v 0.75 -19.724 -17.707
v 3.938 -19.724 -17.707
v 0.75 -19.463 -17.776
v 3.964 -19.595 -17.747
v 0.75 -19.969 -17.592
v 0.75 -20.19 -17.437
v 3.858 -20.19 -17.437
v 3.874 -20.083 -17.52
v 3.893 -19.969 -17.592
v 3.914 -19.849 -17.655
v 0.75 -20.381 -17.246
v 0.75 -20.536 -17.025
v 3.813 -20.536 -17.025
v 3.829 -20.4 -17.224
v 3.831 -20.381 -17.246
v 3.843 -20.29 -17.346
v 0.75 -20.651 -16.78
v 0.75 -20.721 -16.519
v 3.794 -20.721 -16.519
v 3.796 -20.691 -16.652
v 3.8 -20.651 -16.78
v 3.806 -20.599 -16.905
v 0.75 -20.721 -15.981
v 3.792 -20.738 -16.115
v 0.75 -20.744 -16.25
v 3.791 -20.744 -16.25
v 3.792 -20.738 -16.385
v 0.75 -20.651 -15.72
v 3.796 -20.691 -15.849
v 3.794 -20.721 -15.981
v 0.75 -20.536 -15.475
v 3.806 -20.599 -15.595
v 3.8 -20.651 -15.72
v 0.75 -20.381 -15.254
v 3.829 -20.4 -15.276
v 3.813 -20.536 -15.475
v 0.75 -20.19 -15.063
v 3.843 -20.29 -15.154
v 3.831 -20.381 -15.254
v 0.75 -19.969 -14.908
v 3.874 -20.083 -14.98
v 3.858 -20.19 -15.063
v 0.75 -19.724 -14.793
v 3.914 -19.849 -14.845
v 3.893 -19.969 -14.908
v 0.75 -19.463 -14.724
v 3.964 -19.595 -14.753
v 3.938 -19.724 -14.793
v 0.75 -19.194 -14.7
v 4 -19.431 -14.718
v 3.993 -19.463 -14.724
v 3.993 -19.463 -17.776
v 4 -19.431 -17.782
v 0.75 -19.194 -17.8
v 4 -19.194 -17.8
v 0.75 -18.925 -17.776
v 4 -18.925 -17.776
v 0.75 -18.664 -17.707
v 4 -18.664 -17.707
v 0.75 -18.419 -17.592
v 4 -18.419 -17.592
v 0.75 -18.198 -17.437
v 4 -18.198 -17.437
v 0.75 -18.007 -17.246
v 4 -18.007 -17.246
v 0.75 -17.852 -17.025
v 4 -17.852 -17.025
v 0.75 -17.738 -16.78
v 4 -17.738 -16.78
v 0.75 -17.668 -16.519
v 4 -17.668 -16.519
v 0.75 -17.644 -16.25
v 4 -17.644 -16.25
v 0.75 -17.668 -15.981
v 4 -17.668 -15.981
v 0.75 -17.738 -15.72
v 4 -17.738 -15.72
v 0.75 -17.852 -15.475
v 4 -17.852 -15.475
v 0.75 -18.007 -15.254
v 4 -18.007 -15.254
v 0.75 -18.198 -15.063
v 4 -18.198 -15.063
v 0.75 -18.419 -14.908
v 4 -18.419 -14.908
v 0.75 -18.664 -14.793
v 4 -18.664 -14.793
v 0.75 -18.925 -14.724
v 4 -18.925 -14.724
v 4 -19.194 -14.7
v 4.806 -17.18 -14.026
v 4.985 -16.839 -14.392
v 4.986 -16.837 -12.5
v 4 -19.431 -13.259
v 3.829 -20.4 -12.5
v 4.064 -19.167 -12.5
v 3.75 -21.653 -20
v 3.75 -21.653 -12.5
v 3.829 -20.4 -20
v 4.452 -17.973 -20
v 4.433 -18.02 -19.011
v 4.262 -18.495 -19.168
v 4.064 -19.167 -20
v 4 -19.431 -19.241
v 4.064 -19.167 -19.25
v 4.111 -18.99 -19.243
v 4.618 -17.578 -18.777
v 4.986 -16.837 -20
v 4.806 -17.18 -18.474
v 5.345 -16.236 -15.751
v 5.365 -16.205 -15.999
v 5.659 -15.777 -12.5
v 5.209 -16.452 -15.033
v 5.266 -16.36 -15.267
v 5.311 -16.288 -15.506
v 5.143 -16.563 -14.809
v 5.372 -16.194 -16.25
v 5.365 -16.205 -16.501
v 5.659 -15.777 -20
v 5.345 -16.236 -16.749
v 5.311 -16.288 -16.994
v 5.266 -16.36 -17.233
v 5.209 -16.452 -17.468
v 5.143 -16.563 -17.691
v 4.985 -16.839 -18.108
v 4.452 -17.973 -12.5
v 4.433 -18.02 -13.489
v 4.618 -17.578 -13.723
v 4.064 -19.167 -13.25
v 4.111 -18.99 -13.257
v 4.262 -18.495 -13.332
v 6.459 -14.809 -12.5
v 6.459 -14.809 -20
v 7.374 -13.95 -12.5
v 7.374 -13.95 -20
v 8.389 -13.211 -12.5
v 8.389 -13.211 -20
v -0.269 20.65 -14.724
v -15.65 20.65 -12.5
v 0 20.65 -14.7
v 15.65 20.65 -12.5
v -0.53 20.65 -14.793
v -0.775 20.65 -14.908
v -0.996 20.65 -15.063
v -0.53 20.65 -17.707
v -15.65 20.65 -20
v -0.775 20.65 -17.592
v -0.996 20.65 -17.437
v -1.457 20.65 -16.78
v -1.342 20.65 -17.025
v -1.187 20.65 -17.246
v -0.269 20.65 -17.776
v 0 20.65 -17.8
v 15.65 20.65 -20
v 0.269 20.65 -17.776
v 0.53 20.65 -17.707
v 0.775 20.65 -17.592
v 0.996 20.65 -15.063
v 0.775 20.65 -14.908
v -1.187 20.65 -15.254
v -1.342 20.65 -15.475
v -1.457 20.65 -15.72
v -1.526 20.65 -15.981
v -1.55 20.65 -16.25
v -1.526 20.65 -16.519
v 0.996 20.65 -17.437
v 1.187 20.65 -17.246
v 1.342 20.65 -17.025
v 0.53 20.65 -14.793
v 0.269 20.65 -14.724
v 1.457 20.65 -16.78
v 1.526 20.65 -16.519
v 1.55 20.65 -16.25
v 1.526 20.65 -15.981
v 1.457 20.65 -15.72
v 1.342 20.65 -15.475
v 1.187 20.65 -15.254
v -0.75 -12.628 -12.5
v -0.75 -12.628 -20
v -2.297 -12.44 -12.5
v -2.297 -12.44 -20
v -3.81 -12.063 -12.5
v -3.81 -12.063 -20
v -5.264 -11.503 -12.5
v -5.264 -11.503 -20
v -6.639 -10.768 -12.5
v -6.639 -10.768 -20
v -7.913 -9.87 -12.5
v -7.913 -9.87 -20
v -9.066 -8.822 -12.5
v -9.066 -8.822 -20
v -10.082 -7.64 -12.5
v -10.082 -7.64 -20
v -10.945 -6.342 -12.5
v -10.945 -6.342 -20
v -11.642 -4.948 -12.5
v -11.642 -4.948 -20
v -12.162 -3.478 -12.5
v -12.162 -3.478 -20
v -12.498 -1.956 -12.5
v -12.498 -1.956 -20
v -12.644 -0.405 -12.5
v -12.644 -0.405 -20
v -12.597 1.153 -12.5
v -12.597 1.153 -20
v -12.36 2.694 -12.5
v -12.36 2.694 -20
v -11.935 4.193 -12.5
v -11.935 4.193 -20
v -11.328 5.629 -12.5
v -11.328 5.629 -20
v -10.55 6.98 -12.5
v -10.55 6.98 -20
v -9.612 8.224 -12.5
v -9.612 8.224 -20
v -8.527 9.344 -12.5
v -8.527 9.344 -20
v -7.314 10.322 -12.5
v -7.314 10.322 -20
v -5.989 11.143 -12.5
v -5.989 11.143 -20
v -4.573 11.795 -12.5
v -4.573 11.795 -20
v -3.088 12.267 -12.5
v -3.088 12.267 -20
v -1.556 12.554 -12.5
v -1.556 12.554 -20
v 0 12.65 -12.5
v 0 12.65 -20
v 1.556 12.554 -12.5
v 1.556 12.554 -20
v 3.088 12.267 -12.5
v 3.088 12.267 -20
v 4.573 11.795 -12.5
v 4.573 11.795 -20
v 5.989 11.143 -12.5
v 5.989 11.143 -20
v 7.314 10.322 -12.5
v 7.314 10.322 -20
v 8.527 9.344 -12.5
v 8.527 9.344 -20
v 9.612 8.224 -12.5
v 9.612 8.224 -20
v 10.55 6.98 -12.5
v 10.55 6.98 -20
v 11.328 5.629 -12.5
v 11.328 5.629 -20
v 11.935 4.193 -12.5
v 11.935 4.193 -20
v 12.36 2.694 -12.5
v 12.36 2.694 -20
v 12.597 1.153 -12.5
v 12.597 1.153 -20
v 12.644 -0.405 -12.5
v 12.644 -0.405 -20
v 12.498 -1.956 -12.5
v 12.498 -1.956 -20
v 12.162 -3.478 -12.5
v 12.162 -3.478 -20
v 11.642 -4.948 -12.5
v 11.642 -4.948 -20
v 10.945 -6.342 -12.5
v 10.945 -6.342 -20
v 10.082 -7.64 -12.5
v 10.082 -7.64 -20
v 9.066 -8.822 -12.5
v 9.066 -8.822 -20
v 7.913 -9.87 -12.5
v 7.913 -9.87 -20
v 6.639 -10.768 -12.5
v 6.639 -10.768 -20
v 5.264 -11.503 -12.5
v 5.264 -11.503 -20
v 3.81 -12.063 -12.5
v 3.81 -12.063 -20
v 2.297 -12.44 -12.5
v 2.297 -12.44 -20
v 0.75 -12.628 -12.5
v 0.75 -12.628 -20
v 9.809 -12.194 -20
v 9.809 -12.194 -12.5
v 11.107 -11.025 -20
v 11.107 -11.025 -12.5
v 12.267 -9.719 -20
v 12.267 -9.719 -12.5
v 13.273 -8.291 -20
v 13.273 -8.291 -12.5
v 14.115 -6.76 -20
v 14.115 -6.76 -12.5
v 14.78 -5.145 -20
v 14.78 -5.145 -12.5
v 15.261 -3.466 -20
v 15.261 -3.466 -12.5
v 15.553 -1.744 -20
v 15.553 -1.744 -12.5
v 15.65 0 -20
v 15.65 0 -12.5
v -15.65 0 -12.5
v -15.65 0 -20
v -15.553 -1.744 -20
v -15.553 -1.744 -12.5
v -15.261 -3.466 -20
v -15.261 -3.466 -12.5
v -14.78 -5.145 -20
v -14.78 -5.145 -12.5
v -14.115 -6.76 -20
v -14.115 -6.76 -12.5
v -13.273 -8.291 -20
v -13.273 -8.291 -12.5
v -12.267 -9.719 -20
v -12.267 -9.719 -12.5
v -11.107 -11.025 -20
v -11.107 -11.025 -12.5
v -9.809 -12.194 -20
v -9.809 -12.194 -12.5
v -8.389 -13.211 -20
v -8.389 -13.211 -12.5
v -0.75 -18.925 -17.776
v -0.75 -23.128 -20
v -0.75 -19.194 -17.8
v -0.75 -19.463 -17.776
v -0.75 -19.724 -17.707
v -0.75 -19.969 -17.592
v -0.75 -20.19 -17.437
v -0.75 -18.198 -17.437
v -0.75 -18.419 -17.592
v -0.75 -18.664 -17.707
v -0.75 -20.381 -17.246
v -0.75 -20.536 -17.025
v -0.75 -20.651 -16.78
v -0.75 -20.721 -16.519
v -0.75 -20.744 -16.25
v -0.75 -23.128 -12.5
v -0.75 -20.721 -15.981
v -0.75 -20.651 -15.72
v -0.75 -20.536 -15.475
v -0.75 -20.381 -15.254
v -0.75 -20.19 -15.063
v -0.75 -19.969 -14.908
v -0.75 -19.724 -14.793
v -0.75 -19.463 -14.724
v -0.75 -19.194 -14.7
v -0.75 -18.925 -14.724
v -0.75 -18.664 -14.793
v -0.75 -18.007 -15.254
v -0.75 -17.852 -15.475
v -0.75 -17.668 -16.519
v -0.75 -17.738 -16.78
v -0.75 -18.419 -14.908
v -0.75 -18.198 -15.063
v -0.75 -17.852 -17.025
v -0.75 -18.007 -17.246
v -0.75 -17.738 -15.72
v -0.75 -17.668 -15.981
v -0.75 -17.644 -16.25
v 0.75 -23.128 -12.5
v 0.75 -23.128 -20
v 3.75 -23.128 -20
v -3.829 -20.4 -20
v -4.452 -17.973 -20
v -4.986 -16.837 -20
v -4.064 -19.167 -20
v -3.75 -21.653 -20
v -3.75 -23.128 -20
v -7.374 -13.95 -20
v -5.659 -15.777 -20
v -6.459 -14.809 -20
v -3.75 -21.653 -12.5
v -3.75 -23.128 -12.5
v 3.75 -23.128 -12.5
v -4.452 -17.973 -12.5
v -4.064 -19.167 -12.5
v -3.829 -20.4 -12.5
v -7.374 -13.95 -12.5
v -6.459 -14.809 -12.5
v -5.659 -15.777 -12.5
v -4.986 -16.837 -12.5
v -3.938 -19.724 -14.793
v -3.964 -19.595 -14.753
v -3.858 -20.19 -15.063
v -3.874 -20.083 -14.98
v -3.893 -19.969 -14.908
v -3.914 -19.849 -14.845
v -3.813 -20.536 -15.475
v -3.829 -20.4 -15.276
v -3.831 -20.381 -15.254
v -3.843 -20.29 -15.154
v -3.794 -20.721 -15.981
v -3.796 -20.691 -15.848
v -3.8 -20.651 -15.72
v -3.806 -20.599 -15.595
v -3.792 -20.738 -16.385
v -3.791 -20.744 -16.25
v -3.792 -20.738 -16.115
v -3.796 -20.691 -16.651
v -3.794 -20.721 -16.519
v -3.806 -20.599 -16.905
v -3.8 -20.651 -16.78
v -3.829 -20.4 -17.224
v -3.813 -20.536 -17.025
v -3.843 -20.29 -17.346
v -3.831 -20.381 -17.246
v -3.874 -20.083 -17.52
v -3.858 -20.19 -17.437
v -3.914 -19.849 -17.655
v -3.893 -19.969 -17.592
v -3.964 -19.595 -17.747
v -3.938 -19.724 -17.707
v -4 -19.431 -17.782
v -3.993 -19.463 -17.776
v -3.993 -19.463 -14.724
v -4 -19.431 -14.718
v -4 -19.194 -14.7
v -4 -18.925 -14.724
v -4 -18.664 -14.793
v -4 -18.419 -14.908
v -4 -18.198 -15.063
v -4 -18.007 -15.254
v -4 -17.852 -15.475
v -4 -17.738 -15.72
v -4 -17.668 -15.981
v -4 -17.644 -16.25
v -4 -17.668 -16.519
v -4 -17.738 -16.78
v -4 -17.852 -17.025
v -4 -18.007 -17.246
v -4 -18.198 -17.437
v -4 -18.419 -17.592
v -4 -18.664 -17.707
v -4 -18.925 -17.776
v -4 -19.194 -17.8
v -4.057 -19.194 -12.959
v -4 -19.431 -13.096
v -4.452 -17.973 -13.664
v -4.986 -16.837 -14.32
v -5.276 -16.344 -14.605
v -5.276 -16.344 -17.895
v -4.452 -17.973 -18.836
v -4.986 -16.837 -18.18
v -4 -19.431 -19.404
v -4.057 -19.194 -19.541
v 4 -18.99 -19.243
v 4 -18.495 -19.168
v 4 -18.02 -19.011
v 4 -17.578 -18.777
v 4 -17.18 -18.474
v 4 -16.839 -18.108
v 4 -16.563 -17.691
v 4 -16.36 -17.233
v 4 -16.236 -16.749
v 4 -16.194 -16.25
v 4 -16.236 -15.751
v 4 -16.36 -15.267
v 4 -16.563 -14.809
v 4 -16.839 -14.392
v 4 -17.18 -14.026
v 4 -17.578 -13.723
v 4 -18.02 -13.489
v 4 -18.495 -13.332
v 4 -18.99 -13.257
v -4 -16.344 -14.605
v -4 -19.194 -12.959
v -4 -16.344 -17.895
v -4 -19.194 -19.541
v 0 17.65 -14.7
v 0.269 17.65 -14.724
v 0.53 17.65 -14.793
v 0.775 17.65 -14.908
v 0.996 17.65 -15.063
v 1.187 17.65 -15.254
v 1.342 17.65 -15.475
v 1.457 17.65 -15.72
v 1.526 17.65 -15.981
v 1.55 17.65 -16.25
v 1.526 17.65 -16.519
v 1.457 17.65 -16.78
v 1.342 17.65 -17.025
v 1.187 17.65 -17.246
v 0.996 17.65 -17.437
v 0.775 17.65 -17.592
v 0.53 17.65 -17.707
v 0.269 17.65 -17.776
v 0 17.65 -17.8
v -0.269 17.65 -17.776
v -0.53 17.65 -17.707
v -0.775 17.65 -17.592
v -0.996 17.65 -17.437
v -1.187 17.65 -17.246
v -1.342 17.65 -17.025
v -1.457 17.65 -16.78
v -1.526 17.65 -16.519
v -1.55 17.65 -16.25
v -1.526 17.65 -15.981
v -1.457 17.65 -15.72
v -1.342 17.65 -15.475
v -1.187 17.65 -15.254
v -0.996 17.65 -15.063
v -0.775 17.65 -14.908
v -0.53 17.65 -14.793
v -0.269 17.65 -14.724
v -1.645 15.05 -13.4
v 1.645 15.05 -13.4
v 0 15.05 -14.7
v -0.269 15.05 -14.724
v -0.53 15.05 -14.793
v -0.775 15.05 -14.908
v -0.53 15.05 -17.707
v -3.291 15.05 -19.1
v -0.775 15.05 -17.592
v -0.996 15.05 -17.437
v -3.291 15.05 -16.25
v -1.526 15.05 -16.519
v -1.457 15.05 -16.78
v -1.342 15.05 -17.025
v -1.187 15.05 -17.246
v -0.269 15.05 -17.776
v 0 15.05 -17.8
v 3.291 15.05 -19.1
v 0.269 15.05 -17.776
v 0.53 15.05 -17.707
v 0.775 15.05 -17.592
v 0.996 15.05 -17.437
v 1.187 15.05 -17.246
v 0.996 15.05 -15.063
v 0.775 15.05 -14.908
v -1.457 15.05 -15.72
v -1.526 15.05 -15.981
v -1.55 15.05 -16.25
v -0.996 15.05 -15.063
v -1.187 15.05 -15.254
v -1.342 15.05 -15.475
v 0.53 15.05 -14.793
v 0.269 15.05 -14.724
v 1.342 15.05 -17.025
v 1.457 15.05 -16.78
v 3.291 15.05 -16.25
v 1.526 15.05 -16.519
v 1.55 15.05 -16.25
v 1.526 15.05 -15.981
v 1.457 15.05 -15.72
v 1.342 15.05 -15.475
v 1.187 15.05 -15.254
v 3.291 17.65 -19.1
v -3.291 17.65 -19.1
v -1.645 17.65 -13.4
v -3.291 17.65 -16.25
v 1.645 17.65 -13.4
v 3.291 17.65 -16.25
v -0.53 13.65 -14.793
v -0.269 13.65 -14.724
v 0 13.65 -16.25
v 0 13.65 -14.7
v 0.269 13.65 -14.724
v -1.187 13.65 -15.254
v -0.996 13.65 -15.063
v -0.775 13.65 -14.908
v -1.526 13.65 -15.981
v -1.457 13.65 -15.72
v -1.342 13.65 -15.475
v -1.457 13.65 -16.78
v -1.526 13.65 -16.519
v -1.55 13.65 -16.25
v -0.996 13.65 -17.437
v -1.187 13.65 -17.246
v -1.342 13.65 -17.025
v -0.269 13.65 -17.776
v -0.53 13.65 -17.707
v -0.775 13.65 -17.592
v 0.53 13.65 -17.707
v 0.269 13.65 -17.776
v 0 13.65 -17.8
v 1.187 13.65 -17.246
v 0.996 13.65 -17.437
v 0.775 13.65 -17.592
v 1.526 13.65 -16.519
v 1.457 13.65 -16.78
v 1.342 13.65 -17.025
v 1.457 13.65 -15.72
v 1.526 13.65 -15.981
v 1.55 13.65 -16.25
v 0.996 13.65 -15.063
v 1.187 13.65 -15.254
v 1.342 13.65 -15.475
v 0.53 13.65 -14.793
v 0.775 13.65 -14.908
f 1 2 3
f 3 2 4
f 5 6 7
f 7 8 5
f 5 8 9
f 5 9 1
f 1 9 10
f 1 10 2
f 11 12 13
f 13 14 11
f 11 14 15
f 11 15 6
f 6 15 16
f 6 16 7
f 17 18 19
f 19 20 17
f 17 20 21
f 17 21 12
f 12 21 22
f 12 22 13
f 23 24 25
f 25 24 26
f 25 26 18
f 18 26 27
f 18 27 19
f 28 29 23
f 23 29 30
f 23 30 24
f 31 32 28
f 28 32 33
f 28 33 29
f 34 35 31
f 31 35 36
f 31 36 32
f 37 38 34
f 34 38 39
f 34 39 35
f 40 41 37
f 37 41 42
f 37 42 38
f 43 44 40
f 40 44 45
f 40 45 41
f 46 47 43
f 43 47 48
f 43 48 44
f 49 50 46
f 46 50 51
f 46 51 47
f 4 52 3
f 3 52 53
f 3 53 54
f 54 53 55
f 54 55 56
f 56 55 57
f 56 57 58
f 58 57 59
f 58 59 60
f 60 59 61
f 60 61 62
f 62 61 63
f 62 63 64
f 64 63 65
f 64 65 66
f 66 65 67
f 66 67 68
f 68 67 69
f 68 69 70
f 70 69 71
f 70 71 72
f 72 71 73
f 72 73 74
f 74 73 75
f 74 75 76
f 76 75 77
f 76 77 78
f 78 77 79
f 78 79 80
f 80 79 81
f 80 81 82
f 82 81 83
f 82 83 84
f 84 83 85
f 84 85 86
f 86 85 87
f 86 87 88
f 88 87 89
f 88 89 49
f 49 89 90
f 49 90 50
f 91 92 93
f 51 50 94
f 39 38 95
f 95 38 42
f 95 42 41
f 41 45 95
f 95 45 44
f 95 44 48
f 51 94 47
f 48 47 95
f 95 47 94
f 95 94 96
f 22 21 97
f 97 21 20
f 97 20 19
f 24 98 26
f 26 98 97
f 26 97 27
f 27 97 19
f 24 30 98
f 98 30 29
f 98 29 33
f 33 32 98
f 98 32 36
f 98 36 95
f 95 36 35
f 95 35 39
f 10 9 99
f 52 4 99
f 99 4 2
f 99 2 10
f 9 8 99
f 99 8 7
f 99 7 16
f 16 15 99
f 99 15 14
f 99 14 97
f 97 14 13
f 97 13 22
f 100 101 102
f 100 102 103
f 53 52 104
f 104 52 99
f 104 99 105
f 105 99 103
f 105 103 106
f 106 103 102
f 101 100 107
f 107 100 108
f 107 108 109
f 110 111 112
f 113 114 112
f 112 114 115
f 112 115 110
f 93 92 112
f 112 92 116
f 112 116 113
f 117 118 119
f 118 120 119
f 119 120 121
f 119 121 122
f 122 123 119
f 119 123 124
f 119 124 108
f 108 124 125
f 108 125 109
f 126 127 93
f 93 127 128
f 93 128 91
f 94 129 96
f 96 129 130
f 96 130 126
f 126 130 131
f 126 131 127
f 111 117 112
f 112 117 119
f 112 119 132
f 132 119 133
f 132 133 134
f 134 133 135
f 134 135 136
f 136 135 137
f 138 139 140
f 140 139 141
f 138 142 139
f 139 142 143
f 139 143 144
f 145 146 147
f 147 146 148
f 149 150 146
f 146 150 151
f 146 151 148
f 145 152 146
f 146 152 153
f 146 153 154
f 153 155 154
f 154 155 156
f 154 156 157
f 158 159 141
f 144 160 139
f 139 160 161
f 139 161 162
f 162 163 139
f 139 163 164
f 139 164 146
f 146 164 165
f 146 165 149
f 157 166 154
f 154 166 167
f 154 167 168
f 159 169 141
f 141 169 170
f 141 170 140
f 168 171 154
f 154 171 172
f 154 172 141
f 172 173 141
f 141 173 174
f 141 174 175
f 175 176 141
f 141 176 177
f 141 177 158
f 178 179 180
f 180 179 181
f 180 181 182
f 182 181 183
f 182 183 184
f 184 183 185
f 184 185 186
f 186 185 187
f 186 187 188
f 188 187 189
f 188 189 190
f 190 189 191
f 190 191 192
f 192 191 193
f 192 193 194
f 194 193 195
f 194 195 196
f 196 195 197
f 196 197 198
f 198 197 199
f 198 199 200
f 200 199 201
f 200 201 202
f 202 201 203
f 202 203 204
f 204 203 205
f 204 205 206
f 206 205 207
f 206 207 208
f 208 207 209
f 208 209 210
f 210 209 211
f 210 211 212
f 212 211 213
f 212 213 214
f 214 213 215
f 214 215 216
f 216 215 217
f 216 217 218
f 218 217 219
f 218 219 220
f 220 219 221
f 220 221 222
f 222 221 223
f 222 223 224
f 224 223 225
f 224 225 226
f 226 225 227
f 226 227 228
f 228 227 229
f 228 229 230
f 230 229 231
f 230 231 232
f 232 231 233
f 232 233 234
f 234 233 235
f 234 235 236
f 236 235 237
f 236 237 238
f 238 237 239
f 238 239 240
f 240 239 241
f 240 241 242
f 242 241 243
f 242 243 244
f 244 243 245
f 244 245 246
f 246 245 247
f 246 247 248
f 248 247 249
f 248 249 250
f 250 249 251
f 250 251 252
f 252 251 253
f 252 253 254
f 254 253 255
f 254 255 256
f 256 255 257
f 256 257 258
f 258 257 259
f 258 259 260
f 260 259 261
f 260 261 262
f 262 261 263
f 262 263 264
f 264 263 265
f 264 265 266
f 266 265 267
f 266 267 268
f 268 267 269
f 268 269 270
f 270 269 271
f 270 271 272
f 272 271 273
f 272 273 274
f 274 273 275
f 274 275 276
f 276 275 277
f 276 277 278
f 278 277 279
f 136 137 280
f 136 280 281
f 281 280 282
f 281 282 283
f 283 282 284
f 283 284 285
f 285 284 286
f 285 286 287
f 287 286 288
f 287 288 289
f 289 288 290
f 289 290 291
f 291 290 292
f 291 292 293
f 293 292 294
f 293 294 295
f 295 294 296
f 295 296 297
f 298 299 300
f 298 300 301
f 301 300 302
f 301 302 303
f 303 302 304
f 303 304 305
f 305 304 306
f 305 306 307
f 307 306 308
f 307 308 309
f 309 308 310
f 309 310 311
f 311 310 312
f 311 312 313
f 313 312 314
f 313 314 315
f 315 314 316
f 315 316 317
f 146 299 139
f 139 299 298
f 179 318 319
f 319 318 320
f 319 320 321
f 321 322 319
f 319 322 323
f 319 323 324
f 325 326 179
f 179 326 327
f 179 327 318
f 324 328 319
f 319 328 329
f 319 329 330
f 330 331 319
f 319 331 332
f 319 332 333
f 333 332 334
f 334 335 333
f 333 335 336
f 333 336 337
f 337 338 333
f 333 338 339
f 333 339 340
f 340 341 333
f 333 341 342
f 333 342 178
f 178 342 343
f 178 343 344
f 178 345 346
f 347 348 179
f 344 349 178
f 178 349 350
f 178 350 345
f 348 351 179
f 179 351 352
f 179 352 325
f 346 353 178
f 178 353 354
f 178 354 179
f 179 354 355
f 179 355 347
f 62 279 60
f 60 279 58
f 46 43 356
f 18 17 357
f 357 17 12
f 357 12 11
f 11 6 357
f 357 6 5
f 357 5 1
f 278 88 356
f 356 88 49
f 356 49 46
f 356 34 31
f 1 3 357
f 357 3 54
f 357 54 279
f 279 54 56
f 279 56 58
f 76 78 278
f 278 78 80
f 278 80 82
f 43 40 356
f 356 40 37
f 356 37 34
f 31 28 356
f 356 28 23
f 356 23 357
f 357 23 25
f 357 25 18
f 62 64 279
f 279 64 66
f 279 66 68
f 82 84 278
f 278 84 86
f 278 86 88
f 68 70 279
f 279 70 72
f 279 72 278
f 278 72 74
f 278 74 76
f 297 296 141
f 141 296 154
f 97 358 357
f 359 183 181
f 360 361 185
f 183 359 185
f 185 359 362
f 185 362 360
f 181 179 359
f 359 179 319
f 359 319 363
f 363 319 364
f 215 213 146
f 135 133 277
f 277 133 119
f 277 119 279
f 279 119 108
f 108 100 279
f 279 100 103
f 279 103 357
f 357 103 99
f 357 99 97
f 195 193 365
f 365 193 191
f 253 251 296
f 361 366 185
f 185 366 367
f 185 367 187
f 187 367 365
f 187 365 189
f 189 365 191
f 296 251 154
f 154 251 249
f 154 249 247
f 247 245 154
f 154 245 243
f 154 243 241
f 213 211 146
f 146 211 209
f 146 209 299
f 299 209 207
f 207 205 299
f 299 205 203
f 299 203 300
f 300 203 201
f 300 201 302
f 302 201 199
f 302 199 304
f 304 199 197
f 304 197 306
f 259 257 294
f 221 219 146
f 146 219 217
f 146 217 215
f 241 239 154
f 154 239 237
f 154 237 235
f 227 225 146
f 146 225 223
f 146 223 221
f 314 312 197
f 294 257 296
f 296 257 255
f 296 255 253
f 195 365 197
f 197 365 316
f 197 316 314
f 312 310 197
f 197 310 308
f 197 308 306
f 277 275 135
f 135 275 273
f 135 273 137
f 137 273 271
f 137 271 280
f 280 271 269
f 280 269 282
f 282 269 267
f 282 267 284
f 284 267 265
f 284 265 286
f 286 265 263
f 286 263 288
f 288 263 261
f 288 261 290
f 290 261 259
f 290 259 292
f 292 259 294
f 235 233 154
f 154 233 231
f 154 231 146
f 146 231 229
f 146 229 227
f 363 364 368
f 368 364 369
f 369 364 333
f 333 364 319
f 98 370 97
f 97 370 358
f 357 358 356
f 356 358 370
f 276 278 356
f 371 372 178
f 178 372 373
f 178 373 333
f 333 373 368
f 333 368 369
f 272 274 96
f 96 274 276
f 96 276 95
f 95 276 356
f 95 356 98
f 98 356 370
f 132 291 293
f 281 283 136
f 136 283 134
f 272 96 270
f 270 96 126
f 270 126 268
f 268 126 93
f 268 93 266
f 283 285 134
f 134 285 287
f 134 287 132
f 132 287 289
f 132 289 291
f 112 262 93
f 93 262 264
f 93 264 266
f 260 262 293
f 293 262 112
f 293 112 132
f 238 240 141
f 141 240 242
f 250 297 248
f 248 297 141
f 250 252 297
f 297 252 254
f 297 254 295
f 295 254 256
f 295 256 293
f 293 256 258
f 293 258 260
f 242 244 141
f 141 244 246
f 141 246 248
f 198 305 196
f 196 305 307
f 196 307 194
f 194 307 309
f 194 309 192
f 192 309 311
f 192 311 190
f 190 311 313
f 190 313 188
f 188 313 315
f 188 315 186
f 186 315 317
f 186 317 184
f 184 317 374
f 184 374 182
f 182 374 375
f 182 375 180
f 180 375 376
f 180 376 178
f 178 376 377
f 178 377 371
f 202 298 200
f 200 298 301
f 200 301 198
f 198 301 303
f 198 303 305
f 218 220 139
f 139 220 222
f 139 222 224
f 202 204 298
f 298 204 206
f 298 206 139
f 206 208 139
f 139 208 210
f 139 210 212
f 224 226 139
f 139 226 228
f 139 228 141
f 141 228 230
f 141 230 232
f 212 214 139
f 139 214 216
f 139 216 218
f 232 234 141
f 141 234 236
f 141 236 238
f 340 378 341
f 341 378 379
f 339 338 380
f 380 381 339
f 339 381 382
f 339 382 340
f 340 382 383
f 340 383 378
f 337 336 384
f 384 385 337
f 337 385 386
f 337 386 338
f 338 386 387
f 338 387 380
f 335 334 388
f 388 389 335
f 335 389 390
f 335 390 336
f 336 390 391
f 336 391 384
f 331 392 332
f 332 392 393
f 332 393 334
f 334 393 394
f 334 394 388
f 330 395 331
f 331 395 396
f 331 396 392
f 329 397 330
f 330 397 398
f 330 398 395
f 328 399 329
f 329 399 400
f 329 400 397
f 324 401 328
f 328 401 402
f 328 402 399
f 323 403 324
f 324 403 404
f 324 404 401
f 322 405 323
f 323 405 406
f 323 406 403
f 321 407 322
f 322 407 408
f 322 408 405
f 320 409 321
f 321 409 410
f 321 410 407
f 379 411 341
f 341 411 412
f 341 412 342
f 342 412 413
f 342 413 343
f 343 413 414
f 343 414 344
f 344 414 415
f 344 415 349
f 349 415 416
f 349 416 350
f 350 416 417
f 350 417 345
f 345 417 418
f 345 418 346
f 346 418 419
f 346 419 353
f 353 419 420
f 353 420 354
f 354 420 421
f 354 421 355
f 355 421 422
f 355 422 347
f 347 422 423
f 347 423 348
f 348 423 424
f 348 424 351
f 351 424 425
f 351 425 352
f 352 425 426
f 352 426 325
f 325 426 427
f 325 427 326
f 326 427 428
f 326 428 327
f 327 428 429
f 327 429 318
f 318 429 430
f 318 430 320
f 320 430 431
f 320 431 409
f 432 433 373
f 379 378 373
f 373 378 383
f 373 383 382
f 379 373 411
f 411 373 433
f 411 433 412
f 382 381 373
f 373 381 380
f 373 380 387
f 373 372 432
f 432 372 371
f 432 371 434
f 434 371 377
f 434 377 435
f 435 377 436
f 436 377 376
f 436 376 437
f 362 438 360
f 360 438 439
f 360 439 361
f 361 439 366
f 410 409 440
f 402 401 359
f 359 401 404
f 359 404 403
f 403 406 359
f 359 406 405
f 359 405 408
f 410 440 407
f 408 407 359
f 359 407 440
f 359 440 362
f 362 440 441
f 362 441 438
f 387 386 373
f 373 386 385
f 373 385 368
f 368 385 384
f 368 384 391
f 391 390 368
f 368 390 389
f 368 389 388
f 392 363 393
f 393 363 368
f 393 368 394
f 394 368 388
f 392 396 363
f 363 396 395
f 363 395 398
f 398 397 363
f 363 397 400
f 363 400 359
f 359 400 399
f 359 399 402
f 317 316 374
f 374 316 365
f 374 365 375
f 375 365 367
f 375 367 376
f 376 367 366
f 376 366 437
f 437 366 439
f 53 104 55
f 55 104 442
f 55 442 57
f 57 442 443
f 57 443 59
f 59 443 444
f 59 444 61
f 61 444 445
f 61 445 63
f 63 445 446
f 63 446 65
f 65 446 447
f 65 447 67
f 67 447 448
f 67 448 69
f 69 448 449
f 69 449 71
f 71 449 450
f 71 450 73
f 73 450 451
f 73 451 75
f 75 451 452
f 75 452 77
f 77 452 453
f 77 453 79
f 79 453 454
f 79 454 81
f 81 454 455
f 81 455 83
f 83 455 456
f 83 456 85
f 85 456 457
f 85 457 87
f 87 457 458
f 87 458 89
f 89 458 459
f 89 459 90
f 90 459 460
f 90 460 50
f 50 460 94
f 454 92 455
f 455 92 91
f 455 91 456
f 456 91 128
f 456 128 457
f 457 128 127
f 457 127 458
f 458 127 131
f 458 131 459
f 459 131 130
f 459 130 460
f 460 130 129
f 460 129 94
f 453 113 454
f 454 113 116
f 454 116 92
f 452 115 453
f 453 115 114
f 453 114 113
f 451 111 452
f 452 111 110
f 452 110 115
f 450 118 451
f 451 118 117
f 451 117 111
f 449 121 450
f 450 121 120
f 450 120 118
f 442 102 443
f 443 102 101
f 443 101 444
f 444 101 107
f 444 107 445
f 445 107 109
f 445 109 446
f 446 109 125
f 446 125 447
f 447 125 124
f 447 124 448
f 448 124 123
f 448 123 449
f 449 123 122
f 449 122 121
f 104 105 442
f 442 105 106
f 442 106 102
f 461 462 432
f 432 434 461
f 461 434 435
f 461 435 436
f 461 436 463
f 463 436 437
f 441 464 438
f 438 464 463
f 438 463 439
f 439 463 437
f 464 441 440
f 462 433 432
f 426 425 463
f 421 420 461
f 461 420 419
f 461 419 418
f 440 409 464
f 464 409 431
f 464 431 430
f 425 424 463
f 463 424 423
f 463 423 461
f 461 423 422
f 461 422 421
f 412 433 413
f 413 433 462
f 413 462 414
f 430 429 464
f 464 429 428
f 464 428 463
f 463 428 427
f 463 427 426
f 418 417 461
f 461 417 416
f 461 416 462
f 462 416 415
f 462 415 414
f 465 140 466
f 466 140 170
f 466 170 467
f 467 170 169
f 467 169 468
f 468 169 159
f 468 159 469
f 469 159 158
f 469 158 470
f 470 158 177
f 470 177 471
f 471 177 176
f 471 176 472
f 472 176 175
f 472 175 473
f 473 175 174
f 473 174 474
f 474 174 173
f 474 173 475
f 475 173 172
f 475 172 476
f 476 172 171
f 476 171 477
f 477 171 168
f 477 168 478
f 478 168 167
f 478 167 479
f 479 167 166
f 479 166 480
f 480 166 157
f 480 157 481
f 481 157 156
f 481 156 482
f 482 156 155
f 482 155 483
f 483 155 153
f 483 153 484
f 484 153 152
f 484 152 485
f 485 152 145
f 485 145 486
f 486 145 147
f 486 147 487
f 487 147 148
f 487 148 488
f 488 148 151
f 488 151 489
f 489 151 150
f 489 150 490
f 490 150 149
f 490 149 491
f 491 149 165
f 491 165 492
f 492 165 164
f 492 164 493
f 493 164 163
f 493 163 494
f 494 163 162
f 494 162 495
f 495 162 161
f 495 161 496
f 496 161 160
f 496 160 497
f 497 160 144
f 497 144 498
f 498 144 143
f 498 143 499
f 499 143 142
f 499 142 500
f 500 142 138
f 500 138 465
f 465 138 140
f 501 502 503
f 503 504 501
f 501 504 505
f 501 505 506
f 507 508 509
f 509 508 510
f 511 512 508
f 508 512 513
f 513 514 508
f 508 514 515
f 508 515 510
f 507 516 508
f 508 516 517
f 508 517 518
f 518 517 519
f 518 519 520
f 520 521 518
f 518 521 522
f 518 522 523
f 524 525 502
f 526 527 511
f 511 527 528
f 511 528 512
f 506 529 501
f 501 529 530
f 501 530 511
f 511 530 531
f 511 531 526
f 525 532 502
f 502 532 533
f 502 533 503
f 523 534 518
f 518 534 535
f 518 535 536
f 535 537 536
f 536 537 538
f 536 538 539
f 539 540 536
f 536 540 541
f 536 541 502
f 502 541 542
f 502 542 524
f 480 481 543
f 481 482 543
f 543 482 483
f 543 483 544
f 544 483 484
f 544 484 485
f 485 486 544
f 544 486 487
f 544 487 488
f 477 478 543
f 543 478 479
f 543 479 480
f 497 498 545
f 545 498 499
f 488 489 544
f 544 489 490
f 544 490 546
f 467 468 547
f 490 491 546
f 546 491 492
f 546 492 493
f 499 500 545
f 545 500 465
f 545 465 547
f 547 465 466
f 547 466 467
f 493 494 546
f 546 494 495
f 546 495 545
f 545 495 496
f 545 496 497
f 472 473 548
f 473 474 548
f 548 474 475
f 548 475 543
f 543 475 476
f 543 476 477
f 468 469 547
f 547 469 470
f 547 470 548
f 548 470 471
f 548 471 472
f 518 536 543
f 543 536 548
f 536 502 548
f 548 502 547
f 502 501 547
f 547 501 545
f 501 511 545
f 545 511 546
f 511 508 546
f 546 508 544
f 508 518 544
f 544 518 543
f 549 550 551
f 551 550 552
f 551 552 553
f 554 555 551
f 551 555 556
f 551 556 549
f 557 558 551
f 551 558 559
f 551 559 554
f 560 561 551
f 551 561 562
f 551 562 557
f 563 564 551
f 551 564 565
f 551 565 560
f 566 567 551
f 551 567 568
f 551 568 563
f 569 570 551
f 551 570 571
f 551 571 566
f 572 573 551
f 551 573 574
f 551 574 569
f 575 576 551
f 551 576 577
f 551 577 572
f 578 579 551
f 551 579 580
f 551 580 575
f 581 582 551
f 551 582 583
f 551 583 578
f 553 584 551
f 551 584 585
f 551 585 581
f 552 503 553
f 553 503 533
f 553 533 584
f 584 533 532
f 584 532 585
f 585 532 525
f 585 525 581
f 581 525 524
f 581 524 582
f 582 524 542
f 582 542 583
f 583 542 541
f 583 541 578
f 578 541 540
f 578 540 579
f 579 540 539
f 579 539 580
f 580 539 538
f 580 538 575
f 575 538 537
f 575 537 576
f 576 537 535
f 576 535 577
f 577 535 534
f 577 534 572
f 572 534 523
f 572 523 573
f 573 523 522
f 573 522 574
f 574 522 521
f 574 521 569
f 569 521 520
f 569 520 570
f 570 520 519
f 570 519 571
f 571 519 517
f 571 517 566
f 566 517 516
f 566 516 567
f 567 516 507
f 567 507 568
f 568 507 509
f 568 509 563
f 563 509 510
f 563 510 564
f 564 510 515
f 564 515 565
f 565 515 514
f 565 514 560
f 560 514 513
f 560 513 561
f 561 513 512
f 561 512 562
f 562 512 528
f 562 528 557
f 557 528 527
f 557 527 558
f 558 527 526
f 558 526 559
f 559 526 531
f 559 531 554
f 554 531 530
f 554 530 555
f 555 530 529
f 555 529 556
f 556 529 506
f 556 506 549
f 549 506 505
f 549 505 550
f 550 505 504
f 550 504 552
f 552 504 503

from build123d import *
from build123d.topology import SkipClean

# Parameters (mm, degrees)
BOSS_EXTRUDE1_DEPTH   = 20
SKETCH2_W             = 3
SKETCH2_H             = 10.5
BOSS_EXTRUDE2_DEPTH   = 20
SKETCH4_W             = 31.3
SKETCH4_H             = 40
BOSS_EXTRUDE3_DEPTH   = 5
SKETCH5_W             = 25
SKETCH5_H             = 37.777747226
CUT_EXTRUDE2_DEPTH    = 13.65
SKETCH6_R             = 1.55
MOTORMOUNTHOLES_DEPTH = 6
CLAMPHOLES_REACH      = 38.211
SKETCH8_R             = 1.55
ENDSTOPPER_DEPTH      = 2
CUT_EXTRUDE7_START    = -15.65
SKETCH10_W            = 25
SKETCH10_H            = 37.777747226
CUT_EXTRUDE7_DEPTH    = 13.65
SKETCH11_W            = 25
SKETCH11_H            = 10.636850541
CUT_EXTRUDE8_DEPTH    = 4
FILLET1_START         = -20
FILLET1_DEPTH         = 2.1999999
FILLET1_START_2       = -14.6999999
FILLET1_2_DEPTH       = 2.1999999
FILLET1_START_3       = 12.5
FILLET1_3_DEPTH       = 2.1999999
FILLET1_START_4       = 17.8000001
FILLET1_4_DEPTH       = 2.1999999
FILLET1_START_5       = -17.8000001
FILLET1_5_DEPTH       = 3.1000002
FILLET1_START_6       = 14.6999999
FILLET1_6_DEPTH       = 3.1000002
FILLET1_START_7       = -8.389376218
FILLET1_7_OUTLINE_R   = 1.55
FILLET1_7_DEPTH       = 16.778752436
SKETCH13_W            = 10
SKETCH13_H            = 10
CUT_EXTRUDE10_REACH   = 40.348
CUT_EXTRUDE10_START   = 4
SKETCH15_R            = 3
CUT_EXTRUDE11_START   = -4
CUT_EXTRUDE11_DEPTH   = 3
SKETCH17_R            = 6
SHAFT_CLEARANCE_DEPTH = 0.4
SKETCH18_W            = 60.470736223
SKETCH18_H            = 67.356637863
CUT_EXTRUDE12_DEPTH   = 25
SKETCH19_R            = 1.55
CUT_EXTRUDE13_DEPTH   = 7
CUT_EXTRUDE14_START   = -3
CUT_EXTRUDE14_DEPTH   = 2.6


with BuildPart() as part:
    # Sketch1 → Boss-Extrude1 (new, symmetric)
    with BuildSketch(Plane.XY):
        with BuildLine():
            Line((-15.65, 15.65), (-15.65, 0))
            ThreePointArc((-15.65, 0), (-11.066221106, 11.066221145), (5.4e-08, 15.65))
            Line((5.4e-08, 15.65), (-15.65, 15.65))
        make_face()
        with BuildLine():
            Line((15.65, 15.65), (5.4e-08, 15.65))
            ThreePointArc((5.4e-08, 15.65), (11.066221145, 11.066221106), (15.65, 0))
            Line((15.65, 0), (15.65, 15.65))
        make_face()
        with BuildLine():
            ThreePointArc((5.4e-08, 15.65), (-11.066221106, 11.066221145), (-15.65, 0))
            ThreePointArc((-15.65, 0), (-11.328283189, -10.797800702), (-0.75, -15.632018424))
            Line((-0.75, -15.632018424), (-0.75, -12.627747226))
            ThreePointArc((-0.75, -12.627747226), (-8.675684411, 9.206247878), (12.65, 0))
            ThreePointArc((12.65, 0), (9.206247878, -8.675684411), (0.75, -12.627747226))
            Line((0.75, -12.627747226), (0.75, -15.632018424))
            ThreePointArc((0.75, -15.632018424), (11.328283189, -10.797800702), (15.65, 0))
            ThreePointArc((15.65, 0), (11.066221145, 11.066221106), (5.4e-08, 15.65))
        make_face()
    extrude(amount=BOSS_EXTRUDE1_DEPTH, both=True)

    # Sketch2 → Boss-Extrude2 (add, symmetric)
    with BuildSketch(Plane.XY):
        with Locations((-2.25, -17.877747226)):
            Rectangle(SKETCH2_W, SKETCH2_H)
        with Locations((2.25, -17.877747226)):
            Rectangle(SKETCH2_W, SKETCH2_H)
    extrude(amount=BOSS_EXTRUDE2_DEPTH, both=True)

    # Sketch4 → Boss-Extrude3 (add)
    with BuildSketch(Plane(origin=(0, 15.65, 0), x_dir=(1, 0, 0), z_dir=(0, 1, 0))):
        Rectangle(SKETCH4_W, SKETCH4_H)
    extrude(amount=BOSS_EXTRUDE3_DEPTH)

    # Sketch5 → Cut-Extrude2 (cut)
    with BuildSketch(Plane(origin=(15.65, 0, 0), x_dir=(0, 0, -1), z_dir=(1, 0, 0))):
        with Locations((0, -4.238873613)):
            Rectangle(SKETCH5_W, SKETCH5_H)
    extrude(amount=-CUT_EXTRUDE2_DEPTH, mode=Mode.SUBTRACT)

    # Sketch6 → MotorMountHoles (cut)
    with BuildSketch(Plane(origin=(0, 20.65, 0), x_dir=(1, 0, 0), z_dir=(0, 1, 0))):
        with Locations(Location((-8.838834765, 8.838834765, 0), (0, 0, 270))):
            Circle(SKETCH6_R)
        with Locations(Location((8.838834765, 8.838834765, 0), (0, 0, 270))):
            Circle(SKETCH6_R)
        with Locations(Location((8.838834765, -8.838834765, 0), (0, 0, 270))):
            Circle(SKETCH6_R)
        with Locations(Location((-8.838834765, -8.838834765, 0), (0, 0, 270))):
            Circle(SKETCH6_R)
    extrude(amount=-MOTORMOUNTHOLES_DEPTH, mode=Mode.SUBTRACT)

    # ClampHoles: up to this face of the body (flat: up to its plane)
    clampholes_end = Plane(part.part.faces().sort_by_distance((3.75, -19.16091251, 16.25))[0])
    # Sketch8 → ClampHoles (cut, up to the picked face)
    with BuildSketch(Plane.ZY.offset(3.75), mode=Mode.PRIVATE) as clampholes_sk1:
        with Locations(Location((16.25, -19.194077794, 0), (0, 0, 270))):
            Circle(SKETCH8_R)
    clampholes_tool1 = split(extrude(clampholes_sk1.sketch, amount=-CLAMPHOLES_REACH, mode=Mode.PRIVATE), bisect_by=clampholes_end, keep=Keep.BOTH, mode=Mode.PRIVATE)
    # Sketch8 → ClampHoles (cut, up to the picked face)
    with BuildSketch(Plane.ZY.offset(3.75), mode=Mode.PRIVATE) as clampholes_sk2:
        with Locations(Location((-16.25, -19.194077794, 0), (0, 0, 270))):
            Circle(SKETCH8_R)
    clampholes_tool2 = split(extrude(clampholes_sk2.sketch, amount=-CLAMPHOLES_REACH, mode=Mode.PRIVATE), bisect_by=clampholes_end, keep=Keep.BOTH, mode=Mode.PRIVATE)
    add(clampholes_tool1.solids().sort_by(Axis((-3.75, -19.194078, 16.25), (1, 0, 0)))[0], mode=Mode.SUBTRACT)
    add(clampholes_tool2.solids().sort_by(Axis((-3.75, -19.194078, -16.25), (1, 0, 0)))[0], mode=Mode.SUBTRACT)

    # Sketch9 → EndStopper (add)
    with BuildSketch(Plane.XY.offset(20)):
        with BuildLine():
            ThreePointArc((12.65, 0), (-8.675684411, 9.206247878), (-0.75, -12.627747226))
            Line((-0.75, -12.627747226), (-0.75, -7.964766161))
            ThreePointArc((-0.75, -7.964766161), (-5.385164807, 5.916079783), (8, 0))
            ThreePointArc((8, 0), (5.916079783, -5.385164807), (0.75, -7.964766161))
            Line((0.75, -7.964766161), (0.75, -12.627747226))
            ThreePointArc((0.75, -12.627747226), (9.206247878, -8.675684411), (12.65, 0))
        make_face()
    extrude(amount=-ENDSTOPPER_DEPTH)

    # Sketch10 → Cut-Extrude7 (cut)
    with BuildSketch(Plane(origin=(0, 0, 0), x_dir=(0, 0, -1), z_dir=(1, 0, 0)).offset(CUT_EXTRUDE7_START)):
        with Locations((0, -4.238873613)):
            Rectangle(SKETCH10_W, SKETCH10_H)
    extrude(amount=CUT_EXTRUDE7_DEPTH, mode=Mode.SUBTRACT)

    # Sketch11 → Cut-Extrude8 (cut)
    with BuildSketch(Plane.ZY.offset(2)):
        with Locations((0, -17.809321955)):
            Rectangle(SKETCH11_W, SKETCH11_H)
    extrude(amount=-CUT_EXTRUDE8_DEPTH, mode=Mode.SUBTRACT)

    # Fillet1: read off the stored shape, not the designer's step
    # Fillet1 outline → Fillet1 (add)
    with BuildSketch(Plane.XY.offset(FILLET1_START)):
        with BuildLine():
            Line((3.75, -15.194077794), (3.75, -21.653175287))
            ThreePointArc((3.75, -21.653175287), (4.986261134, -16.83686123), (8.389376218, -13.211391549))
            ThreePointArc((8.389376218, -13.211391549), (6.150111782, -14.39092162), (3.75, -15.194077794))
        make_face()
        with BuildLine():
            ThreePointArc((-3.75, -15.194077794), (-6.150111782, -14.39092162), (-8.389376218, -13.21139155))
            ThreePointArc((-8.389376218, -13.21139155), (-4.986261134, -16.83686123), (-3.75, -21.653175287))
            Line((-3.75, -21.653175287), (-3.75, -15.194077794))
        make_face()
    extrude(amount=FILLET1_DEPTH)

    # Fillet1 2 outline → Fillet1 2 (add)
    with BuildSketch(Plane.XY.offset(FILLET1_START_2)):
        with BuildLine():
            Line((3.75, -15.194077794), (3.75, -21.653175287))
            ThreePointArc((3.75, -21.653175287), (4.986261134, -16.83686123), (8.389376218, -13.211391549))
            ThreePointArc((8.389376218, -13.211391549), (6.150111782, -14.39092162), (3.75, -15.194077794))
        make_face()
        with BuildLine():
            ThreePointArc((-3.75, -15.194077794), (-6.150111782, -14.39092162), (-8.389376218, -13.21139155))
            ThreePointArc((-8.389376218, -13.21139155), (-4.986261134, -16.83686123), (-3.75, -21.653175287))
            Line((-3.75, -21.653175287), (-3.75, -15.194077794))
        make_face()
    extrude(amount=FILLET1_2_DEPTH)

    # Fillet1 3 outline → Fillet1 3 (add)
    with BuildSketch(Plane.XY.offset(FILLET1_START_3)):
        with BuildLine():
            Line((3.75, -15.194077794), (3.75, -21.653175287))
            ThreePointArc((3.75, -21.653175287), (4.986261134, -16.83686123), (8.389376218, -13.211391549))
            ThreePointArc((8.389376218, -13.211391549), (6.150111782, -14.39092162), (3.75, -15.194077794))
        make_face()
        with BuildLine():
            ThreePointArc((-3.75, -15.194077794), (-6.150111782, -14.39092162), (-8.389376218, -13.21139155))
            ThreePointArc((-8.389376218, -13.21139155), (-4.986261134, -16.83686123), (-3.75, -21.653175287))
            Line((-3.75, -21.653175287), (-3.75, -15.194077794))
        make_face()
    extrude(amount=FILLET1_3_DEPTH)

    # Fillet1 4 outline → Fillet1 4 (add)
    with BuildSketch(Plane.XY.offset(FILLET1_START_4)):
        with BuildLine():
            Line((3.75, -15.194077794), (3.75, -21.653175287))
            ThreePointArc((3.75, -21.653175287), (4.986261134, -16.83686123), (8.389376218, -13.211391549))
            ThreePointArc((8.389376218, -13.211391549), (6.150111782, -14.39092162), (3.75, -15.194077794))
        make_face()
        with BuildLine():
            ThreePointArc((-3.75, -15.194077794), (-6.150111782, -14.39092162), (-8.389376218, -13.21139155))
            ThreePointArc((-8.389376218, -13.21139155), (-4.986261134, -16.83686123), (-3.75, -21.653175287))
            Line((-3.75, -21.653175287), (-3.75, -15.194077794))
        make_face()
    extrude(amount=FILLET1_4_DEPTH)

    # Fillet1 5 outline → Fillet1 5 (add)
    with BuildSketch(Plane.XY.offset(FILLET1_START_5)):
        with BuildLine():
            Line((3.75, -15.194077794), (3.75, -21.653175287))
            ThreePointArc((3.75, -21.653175287), (4.986261134, -16.83686123), (8.389376218, -13.211391549))
            ThreePointArc((8.389376218, -13.211391549), (6.150111782, -14.39092162), (3.75, -15.194077794))
        make_face()
        with BuildLine():
            ThreePointArc((-3.75, -15.194077794), (-6.150111782, -14.39092162), (-8.389376218, -13.21139155))
            ThreePointArc((-8.389376218, -13.21139155), (-4.986261134, -16.83686123), (-3.75, -21.653175287))
            Line((-3.75, -21.653175287), (-3.75, -15.194077794))
        make_face()
    extrude(amount=FILLET1_5_DEPTH)

    # Fillet1 6 outline → Fillet1 6 (add)
    with BuildSketch(Plane.XY.offset(FILLET1_START_6)):
        with BuildLine():
            Line((3.75, -15.194077794), (3.75, -21.653175287))
            ThreePointArc((3.75, -21.653175287), (4.986261134, -16.83686123), (8.389376218, -13.211391549))
            ThreePointArc((8.389376218, -13.211391549), (6.150111782, -14.39092162), (3.75, -15.194077794))
        make_face()
        with BuildLine():
            ThreePointArc((-3.75, -15.194077794), (-6.150111782, -14.39092162), (-8.389376218, -13.21139155))
            ThreePointArc((-8.389376218, -13.21139155), (-4.986261134, -16.83686123), (-3.75, -21.653175287))
            Line((-3.75, -21.653175287), (-3.75, -15.194077794))
        make_face()
    extrude(amount=FILLET1_6_DEPTH)

    # Fillet1 7 outline → Fillet1 7 (cut)
    with BuildSketch(Plane.YZ.offset(FILLET1_START_7)):
        with Locations((-19.194077794, -16.25)):
            Circle(FILLET1_7_OUTLINE_R)
        with Locations((-19.194077794, 16.25)):
            Circle(FILLET1_7_OUTLINE_R)
    extrude(amount=FILLET1_7_DEPTH, mode=Mode.SUBTRACT)

    # Cut-Sweep1: sweep along a path in Sketch12
    with BuildLine(Plane(origin=(0, 0, 0), x_dir=(0, 0, -1), z_dir=(1, 0, 0))) as cut_sweep1_path:
        Line((-2.775739564, 34.353299637), (-30.459033802, 12.328988213))
    # Sketch13 → Cut-Sweep1 (sweep, cut)
    with BuildSketch(Plane(origin=(0, 11.963370534, -15.037269505), x_dir=(-1, 0, 0), z_dir=(0, 0.6225843191548198, -0.7825527238100508))):
        with Locations((0, 29.484397462)):
            Rectangle(SKETCH13_W, SKETCH13_H)
    sweep(path=cut_sweep1_path.line, mode=Mode.SUBTRACT)

    # Sketch15 → Cut-Extrude10 (cut, up to next)
    with BuildSketch(Plane(origin=(0, 0, 0), x_dir=(0, 0, -1), z_dir=(1, 0, 0)).offset(CUT_EXTRUDE10_START), mode=Mode.PRIVATE) as cut_extrude10_sk1:
        with Locations((16.25, -19.194077794)):
            Circle(SKETCH15_R)
    cut_extrude10_tool1 = extrude(cut_extrude10_sk1.sketch, amount=CUT_EXTRUDE10_REACH, mode=Mode.PRIVATE) & part.part
    cut_extrude10 = cut_extrude10_tool1.solids().sort_by_distance((4, -19.194078, -16.25))[0]
    add(cut_extrude10, mode=Mode.SUBTRACT)

    # Sketch16 → Cut-Extrude11 (cut)
    with BuildSketch(Plane(origin=(0, 0, 0), x_dir=(0, 0, -1), z_dir=(1, 0, 0)).offset(CUT_EXTRUDE11_START)):
        Polygon((12.959103466, -19.194077794), (14.604551733, -22.044077794), (17.895448267, -22.044077794), (19.540896534, -19.194077794), (17.895448267, -16.344077794), (14.604551733, -16.344077794), align=None)
    cut_extrude11 = extrude(amount=-CUT_EXTRUDE11_DEPTH, mode=Mode.SUBTRACT)

    # Mirror1: Cut-Extrude10, Cut-Extrude11 across plane
    add(cut_extrude10.mirror(Plane.XY), mode=Mode.SUBTRACT)
    add(cut_extrude11.mirror(Plane.XY), mode=Mode.SUBTRACT)

    # Sketch17 → Shaft Clearance (cut)
    with BuildSketch(Plane(origin=(0, 20.65, 0), x_dir=(1, 0, 0), z_dir=(0, 1, 0))):
        with Locations(Location((0, 0, 0), (0, 0, 270))):
            Circle(SKETCH17_R)
    extrude(amount=-SHAFT_CLEARANCE_DEPTH, mode=Mode.SUBTRACT)

    # Sketch18 → Cut-Extrude12 (cut, symmetric)
    with SkipClean():  # the faces are left unmerged after this step: merging them gives an invalid solid
        with BuildSketch(Plane(origin=(0, 0, 0), x_dir=(0, 0, -1), z_dir=(1, 0, 0))):
            with Locations((-17.735368112, 5.054402567)):
                Rectangle(SKETCH18_W, SKETCH18_H)
        extrude(amount=CUT_EXTRUDE12_DEPTH, both=True, mode=Mode.SUBTRACT)

    # Sketch19 → Cut-Extrude13 (cut)
    with SkipClean():  # the faces are left unmerged after this step: merging them gives an invalid solid
        with BuildSketch(Plane(origin=(0, 20.65, 0), x_dir=(1, 0, 0), z_dir=(0, 1, 0))):
            with Locations(Location((0, 16.25, 0), (0, 0, 270))):
                Circle(SKETCH19_R)
        extrude(amount=-CUT_EXTRUDE13_DEPTH, mode=Mode.SUBTRACT)

    # Sketch20 → Cut-Extrude14 (cut)
    with SkipClean():  # the faces are left unmerged after this step: merging them gives an invalid solid
        with BuildSketch(Plane(origin=(0, 20.65, 0), x_dir=(1, 0, 0), z_dir=(0, 1, 0)).offset(CUT_EXTRUDE14_START)):
            Polygon((-3.290896534, 16.25), (-1.645448267, 13.4), (1.645448267, 13.4), (3.290896534, 16.25), (3.290896534, 19.1), (-3.290896534, 19.1), align=None)
        extrude(amount=-CUT_EXTRUDE14_DEPTH, mode=Mode.SUBTRACT)


solid = part.part
